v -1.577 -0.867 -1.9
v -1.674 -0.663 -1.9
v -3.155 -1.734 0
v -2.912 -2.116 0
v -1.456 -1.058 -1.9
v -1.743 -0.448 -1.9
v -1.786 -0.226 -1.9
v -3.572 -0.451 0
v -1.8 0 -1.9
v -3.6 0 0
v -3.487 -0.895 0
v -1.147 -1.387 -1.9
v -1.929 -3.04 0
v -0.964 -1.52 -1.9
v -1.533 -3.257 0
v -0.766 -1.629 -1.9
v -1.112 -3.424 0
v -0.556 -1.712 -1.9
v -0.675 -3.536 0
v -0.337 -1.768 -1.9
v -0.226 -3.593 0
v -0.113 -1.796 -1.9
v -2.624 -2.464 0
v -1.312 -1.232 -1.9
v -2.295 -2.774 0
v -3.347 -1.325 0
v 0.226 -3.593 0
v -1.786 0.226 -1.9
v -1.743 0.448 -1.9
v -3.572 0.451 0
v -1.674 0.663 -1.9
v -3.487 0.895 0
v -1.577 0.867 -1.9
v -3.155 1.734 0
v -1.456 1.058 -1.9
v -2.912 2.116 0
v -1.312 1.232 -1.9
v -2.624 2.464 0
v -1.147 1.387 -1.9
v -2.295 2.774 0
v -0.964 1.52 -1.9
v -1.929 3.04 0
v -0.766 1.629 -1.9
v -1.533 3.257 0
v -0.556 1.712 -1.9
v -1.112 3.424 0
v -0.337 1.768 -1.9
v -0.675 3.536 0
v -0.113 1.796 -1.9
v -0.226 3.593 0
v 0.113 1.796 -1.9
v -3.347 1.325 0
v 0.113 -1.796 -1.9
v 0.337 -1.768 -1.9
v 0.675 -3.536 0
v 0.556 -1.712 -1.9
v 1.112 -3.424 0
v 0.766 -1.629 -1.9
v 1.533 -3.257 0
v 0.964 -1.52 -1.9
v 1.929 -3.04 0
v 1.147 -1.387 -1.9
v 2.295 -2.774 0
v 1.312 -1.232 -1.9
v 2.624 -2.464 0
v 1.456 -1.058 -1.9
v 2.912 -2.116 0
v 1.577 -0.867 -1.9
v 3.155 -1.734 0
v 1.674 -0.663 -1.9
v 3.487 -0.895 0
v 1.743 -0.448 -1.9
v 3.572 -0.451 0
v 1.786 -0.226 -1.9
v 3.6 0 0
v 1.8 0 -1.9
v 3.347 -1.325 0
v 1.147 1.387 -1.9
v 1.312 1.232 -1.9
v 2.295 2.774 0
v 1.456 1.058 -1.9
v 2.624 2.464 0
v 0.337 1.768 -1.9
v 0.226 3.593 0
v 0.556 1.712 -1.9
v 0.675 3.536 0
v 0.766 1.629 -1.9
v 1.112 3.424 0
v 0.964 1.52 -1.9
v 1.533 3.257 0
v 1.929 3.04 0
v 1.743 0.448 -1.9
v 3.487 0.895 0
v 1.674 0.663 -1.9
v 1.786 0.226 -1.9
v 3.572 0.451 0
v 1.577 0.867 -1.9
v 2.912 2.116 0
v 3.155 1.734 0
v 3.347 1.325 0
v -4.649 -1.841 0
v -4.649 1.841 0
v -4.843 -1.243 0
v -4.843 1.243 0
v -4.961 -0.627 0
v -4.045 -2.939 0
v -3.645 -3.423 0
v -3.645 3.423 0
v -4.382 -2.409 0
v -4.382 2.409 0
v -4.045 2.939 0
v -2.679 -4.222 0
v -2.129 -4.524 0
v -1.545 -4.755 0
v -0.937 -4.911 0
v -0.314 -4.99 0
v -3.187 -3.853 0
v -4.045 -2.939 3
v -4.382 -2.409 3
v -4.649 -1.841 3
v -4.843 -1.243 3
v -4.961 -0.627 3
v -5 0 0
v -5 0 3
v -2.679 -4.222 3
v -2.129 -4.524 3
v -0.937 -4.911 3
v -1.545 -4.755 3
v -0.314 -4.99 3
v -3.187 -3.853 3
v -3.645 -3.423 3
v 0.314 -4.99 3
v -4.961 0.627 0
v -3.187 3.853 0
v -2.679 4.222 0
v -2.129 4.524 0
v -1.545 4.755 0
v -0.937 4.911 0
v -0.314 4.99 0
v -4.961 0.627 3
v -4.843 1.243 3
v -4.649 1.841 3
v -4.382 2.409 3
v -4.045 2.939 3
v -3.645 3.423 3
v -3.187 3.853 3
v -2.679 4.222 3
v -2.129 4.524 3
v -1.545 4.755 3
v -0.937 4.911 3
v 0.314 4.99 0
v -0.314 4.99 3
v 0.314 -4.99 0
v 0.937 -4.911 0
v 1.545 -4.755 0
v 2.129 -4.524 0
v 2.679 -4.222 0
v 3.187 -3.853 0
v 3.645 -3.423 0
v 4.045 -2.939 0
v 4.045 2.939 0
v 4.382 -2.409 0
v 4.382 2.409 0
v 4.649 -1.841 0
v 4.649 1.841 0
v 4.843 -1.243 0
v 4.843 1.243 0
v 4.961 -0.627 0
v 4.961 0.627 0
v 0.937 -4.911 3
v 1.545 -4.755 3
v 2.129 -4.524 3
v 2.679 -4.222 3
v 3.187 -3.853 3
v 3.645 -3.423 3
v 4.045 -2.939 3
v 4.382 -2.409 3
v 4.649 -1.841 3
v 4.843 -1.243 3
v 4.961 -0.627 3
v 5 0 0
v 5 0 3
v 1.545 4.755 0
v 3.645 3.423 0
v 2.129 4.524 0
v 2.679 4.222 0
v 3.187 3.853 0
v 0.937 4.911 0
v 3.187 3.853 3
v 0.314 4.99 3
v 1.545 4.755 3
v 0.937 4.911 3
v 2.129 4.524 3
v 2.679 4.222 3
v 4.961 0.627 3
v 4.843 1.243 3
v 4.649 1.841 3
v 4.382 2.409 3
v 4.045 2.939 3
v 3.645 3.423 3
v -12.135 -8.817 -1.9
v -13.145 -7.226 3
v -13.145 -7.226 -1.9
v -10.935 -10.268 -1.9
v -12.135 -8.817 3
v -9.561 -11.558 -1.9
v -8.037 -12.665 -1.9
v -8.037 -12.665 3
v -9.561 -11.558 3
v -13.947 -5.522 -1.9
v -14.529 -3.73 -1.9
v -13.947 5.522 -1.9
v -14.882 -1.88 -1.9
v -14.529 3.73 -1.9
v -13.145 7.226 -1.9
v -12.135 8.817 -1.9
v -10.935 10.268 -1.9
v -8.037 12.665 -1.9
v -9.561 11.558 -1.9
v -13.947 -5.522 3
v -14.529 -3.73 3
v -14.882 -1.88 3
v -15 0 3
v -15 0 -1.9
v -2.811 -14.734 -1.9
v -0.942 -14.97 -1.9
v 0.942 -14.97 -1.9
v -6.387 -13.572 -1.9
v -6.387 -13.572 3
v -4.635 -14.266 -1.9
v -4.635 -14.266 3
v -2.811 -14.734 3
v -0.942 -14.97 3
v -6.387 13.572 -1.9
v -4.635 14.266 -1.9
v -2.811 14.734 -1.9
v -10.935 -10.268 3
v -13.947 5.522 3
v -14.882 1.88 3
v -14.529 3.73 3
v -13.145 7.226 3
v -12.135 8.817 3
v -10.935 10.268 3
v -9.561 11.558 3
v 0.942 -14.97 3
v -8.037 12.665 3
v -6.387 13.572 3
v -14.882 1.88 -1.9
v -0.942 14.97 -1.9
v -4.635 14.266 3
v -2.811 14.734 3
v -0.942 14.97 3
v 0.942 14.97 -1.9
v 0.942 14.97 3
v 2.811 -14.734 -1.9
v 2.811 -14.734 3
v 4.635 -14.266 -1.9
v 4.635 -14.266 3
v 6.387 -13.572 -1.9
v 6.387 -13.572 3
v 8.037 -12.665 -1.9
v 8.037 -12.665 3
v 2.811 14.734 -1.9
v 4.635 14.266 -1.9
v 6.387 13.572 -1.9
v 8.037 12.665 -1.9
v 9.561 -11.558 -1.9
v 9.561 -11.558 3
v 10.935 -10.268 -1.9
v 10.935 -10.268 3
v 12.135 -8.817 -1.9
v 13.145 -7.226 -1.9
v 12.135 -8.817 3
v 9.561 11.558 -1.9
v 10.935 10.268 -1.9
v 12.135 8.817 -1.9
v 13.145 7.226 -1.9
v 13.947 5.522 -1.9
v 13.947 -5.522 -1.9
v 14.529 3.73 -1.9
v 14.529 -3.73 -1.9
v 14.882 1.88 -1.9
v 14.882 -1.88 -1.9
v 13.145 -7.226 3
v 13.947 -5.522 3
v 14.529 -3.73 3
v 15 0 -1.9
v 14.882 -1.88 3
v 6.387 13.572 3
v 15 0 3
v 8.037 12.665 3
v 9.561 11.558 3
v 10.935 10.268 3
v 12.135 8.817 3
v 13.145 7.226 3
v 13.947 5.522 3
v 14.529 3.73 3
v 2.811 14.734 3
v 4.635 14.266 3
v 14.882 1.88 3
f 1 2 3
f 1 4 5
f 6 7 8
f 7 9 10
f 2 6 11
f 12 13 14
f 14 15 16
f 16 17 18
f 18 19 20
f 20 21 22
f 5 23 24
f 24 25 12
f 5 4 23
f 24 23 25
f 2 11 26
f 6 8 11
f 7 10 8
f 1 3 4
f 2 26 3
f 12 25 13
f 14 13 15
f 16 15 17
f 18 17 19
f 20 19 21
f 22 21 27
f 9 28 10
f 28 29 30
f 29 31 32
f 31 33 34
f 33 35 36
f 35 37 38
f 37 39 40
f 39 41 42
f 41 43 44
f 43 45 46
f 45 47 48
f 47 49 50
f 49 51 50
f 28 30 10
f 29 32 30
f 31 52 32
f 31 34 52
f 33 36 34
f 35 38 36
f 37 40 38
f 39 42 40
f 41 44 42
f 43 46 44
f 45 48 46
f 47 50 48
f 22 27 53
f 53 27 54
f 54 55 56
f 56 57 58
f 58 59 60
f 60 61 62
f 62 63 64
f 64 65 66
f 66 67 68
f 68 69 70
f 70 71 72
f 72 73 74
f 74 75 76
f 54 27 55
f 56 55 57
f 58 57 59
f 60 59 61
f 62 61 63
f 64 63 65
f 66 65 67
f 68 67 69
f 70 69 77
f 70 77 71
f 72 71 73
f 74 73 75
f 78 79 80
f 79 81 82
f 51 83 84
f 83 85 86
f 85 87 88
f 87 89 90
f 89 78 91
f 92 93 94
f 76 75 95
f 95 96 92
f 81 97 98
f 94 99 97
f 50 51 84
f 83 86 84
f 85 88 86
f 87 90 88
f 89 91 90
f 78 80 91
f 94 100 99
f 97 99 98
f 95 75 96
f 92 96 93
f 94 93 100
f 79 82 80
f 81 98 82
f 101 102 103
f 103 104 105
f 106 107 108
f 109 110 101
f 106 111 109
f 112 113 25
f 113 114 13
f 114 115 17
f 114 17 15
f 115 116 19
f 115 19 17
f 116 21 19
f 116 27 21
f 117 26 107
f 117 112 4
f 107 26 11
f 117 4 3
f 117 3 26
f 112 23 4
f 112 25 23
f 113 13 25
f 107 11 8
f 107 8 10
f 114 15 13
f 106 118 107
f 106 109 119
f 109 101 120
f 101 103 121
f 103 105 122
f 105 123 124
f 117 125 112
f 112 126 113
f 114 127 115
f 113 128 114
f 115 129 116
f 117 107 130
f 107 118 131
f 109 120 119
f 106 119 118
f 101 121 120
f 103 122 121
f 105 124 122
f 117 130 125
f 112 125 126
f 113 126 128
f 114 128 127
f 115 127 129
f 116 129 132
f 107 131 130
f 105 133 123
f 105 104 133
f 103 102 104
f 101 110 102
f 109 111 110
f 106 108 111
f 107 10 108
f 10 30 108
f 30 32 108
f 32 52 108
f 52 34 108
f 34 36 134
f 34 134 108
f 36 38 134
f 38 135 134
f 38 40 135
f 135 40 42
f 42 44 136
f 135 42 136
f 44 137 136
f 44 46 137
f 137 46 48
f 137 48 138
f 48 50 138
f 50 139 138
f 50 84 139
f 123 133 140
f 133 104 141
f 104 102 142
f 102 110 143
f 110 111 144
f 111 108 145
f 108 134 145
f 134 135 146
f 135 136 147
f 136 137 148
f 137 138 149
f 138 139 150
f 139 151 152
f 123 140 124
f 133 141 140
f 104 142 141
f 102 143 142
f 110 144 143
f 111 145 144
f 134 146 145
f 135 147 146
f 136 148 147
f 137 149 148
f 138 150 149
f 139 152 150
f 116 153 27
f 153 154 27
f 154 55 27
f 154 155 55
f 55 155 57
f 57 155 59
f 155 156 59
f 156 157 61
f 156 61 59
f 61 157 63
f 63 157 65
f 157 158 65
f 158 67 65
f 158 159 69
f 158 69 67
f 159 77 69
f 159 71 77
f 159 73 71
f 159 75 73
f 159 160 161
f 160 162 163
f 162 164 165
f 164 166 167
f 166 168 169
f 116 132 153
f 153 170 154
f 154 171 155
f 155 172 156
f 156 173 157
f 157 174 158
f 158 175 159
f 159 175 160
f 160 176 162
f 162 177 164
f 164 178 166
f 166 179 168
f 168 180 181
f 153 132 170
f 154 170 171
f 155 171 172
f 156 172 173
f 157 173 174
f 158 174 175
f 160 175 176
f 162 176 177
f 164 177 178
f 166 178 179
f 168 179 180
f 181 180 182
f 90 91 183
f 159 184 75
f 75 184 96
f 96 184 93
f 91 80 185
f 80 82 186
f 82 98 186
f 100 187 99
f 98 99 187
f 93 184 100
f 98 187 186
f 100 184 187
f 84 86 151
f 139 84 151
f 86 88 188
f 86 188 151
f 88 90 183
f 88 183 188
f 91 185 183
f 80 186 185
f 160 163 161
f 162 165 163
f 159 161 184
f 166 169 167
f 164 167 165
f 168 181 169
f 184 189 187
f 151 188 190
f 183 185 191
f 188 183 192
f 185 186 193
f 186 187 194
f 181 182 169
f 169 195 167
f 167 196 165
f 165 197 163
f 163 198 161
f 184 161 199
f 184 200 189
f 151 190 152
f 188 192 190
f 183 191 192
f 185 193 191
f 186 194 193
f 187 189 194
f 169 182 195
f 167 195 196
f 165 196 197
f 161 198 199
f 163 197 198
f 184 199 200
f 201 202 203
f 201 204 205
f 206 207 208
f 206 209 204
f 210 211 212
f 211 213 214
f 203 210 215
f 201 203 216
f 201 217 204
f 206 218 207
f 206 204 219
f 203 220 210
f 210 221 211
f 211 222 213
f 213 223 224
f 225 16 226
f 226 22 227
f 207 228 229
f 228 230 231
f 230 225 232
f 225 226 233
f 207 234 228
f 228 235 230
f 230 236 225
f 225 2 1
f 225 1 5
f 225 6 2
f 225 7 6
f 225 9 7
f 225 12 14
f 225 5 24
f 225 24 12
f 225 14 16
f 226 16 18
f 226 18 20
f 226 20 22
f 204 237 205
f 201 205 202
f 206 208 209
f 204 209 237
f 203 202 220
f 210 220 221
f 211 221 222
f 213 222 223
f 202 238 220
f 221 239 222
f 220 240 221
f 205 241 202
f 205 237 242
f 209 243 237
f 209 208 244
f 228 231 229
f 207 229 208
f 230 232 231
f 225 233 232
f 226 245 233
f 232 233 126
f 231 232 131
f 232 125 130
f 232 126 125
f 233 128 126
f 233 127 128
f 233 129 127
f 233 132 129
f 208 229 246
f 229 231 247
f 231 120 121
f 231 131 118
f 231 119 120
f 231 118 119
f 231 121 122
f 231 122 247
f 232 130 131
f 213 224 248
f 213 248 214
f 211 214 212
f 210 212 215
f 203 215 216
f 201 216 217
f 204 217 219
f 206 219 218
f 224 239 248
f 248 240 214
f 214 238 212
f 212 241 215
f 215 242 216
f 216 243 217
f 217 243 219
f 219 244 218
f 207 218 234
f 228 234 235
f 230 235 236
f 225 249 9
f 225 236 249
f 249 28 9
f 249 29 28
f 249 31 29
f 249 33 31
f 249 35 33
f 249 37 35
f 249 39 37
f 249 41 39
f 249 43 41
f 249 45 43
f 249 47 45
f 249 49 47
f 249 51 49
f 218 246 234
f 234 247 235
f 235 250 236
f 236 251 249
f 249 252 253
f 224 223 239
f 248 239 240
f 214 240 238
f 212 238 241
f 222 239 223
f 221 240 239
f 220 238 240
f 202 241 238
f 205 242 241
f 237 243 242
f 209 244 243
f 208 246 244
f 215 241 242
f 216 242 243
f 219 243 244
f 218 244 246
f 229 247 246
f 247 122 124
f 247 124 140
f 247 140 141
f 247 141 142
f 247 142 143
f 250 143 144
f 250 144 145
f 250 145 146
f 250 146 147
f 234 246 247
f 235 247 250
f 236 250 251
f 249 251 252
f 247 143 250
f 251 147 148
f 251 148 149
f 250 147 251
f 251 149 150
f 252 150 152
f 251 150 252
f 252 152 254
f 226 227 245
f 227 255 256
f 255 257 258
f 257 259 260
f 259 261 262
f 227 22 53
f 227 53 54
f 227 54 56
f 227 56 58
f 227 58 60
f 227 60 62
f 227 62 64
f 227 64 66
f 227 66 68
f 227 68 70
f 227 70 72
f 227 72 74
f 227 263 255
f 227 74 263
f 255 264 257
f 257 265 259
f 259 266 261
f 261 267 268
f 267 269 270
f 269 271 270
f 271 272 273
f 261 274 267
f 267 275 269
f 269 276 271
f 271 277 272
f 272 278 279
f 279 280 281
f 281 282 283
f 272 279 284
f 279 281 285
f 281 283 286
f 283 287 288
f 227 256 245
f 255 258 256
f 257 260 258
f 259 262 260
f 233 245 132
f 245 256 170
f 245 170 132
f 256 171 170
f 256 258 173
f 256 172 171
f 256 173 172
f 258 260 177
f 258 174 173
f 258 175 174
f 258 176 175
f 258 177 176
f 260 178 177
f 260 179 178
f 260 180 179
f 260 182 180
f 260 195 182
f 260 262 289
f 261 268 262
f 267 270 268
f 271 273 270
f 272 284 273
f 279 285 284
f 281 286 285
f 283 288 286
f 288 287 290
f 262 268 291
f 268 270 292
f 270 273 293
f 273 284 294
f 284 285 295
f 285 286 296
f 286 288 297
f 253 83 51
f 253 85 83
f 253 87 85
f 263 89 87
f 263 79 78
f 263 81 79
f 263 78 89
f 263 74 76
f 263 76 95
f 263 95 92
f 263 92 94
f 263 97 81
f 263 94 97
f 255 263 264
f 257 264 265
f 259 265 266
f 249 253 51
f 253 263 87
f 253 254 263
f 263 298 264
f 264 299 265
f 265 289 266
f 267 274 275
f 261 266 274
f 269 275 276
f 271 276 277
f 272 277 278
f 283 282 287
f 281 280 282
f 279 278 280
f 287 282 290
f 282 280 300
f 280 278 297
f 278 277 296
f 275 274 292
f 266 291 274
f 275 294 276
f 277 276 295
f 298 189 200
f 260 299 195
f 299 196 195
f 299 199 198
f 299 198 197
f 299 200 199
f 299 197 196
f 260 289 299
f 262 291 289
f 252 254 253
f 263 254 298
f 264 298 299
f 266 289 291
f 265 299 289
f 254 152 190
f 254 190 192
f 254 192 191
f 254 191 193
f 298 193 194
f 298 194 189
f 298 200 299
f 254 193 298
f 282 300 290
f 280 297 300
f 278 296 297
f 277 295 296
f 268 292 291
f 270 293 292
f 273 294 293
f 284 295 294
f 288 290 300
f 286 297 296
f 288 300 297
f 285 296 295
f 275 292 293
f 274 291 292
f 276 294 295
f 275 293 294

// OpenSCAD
$fn = 50;

difference() {
	union() {
		translate(v = [0, 0, -1.9000000000000004]) {
			cylinder(h = 4.9, r = 15.0);
		}
	}
	union() {
		translate(v = [0, 0, 0]) {
			rotate(a = [0, 0, 0]) {
				difference() {
					union() {
						translate(v = [0, 0, -4.9]) {
							cylinder(h = 4.9, r = 1.5);
						}
						translate(v = [0, 0, -1.9]) {
							cylinder(h = 1.9, r1 = 1.8, r2 = 3.6);
						}
						translate(v = [0, 0, -4.9]) {
							cylinder(h = 4.9, r = 1.8);
						}
						translate(v = [0, 0, -4.9]) {
							cylinder(h = 4.9, r = 1.5);
						}
					}
					union();
				}
			}
		}
		#cylinder(h = 3, r = 5.0);
	}
}
